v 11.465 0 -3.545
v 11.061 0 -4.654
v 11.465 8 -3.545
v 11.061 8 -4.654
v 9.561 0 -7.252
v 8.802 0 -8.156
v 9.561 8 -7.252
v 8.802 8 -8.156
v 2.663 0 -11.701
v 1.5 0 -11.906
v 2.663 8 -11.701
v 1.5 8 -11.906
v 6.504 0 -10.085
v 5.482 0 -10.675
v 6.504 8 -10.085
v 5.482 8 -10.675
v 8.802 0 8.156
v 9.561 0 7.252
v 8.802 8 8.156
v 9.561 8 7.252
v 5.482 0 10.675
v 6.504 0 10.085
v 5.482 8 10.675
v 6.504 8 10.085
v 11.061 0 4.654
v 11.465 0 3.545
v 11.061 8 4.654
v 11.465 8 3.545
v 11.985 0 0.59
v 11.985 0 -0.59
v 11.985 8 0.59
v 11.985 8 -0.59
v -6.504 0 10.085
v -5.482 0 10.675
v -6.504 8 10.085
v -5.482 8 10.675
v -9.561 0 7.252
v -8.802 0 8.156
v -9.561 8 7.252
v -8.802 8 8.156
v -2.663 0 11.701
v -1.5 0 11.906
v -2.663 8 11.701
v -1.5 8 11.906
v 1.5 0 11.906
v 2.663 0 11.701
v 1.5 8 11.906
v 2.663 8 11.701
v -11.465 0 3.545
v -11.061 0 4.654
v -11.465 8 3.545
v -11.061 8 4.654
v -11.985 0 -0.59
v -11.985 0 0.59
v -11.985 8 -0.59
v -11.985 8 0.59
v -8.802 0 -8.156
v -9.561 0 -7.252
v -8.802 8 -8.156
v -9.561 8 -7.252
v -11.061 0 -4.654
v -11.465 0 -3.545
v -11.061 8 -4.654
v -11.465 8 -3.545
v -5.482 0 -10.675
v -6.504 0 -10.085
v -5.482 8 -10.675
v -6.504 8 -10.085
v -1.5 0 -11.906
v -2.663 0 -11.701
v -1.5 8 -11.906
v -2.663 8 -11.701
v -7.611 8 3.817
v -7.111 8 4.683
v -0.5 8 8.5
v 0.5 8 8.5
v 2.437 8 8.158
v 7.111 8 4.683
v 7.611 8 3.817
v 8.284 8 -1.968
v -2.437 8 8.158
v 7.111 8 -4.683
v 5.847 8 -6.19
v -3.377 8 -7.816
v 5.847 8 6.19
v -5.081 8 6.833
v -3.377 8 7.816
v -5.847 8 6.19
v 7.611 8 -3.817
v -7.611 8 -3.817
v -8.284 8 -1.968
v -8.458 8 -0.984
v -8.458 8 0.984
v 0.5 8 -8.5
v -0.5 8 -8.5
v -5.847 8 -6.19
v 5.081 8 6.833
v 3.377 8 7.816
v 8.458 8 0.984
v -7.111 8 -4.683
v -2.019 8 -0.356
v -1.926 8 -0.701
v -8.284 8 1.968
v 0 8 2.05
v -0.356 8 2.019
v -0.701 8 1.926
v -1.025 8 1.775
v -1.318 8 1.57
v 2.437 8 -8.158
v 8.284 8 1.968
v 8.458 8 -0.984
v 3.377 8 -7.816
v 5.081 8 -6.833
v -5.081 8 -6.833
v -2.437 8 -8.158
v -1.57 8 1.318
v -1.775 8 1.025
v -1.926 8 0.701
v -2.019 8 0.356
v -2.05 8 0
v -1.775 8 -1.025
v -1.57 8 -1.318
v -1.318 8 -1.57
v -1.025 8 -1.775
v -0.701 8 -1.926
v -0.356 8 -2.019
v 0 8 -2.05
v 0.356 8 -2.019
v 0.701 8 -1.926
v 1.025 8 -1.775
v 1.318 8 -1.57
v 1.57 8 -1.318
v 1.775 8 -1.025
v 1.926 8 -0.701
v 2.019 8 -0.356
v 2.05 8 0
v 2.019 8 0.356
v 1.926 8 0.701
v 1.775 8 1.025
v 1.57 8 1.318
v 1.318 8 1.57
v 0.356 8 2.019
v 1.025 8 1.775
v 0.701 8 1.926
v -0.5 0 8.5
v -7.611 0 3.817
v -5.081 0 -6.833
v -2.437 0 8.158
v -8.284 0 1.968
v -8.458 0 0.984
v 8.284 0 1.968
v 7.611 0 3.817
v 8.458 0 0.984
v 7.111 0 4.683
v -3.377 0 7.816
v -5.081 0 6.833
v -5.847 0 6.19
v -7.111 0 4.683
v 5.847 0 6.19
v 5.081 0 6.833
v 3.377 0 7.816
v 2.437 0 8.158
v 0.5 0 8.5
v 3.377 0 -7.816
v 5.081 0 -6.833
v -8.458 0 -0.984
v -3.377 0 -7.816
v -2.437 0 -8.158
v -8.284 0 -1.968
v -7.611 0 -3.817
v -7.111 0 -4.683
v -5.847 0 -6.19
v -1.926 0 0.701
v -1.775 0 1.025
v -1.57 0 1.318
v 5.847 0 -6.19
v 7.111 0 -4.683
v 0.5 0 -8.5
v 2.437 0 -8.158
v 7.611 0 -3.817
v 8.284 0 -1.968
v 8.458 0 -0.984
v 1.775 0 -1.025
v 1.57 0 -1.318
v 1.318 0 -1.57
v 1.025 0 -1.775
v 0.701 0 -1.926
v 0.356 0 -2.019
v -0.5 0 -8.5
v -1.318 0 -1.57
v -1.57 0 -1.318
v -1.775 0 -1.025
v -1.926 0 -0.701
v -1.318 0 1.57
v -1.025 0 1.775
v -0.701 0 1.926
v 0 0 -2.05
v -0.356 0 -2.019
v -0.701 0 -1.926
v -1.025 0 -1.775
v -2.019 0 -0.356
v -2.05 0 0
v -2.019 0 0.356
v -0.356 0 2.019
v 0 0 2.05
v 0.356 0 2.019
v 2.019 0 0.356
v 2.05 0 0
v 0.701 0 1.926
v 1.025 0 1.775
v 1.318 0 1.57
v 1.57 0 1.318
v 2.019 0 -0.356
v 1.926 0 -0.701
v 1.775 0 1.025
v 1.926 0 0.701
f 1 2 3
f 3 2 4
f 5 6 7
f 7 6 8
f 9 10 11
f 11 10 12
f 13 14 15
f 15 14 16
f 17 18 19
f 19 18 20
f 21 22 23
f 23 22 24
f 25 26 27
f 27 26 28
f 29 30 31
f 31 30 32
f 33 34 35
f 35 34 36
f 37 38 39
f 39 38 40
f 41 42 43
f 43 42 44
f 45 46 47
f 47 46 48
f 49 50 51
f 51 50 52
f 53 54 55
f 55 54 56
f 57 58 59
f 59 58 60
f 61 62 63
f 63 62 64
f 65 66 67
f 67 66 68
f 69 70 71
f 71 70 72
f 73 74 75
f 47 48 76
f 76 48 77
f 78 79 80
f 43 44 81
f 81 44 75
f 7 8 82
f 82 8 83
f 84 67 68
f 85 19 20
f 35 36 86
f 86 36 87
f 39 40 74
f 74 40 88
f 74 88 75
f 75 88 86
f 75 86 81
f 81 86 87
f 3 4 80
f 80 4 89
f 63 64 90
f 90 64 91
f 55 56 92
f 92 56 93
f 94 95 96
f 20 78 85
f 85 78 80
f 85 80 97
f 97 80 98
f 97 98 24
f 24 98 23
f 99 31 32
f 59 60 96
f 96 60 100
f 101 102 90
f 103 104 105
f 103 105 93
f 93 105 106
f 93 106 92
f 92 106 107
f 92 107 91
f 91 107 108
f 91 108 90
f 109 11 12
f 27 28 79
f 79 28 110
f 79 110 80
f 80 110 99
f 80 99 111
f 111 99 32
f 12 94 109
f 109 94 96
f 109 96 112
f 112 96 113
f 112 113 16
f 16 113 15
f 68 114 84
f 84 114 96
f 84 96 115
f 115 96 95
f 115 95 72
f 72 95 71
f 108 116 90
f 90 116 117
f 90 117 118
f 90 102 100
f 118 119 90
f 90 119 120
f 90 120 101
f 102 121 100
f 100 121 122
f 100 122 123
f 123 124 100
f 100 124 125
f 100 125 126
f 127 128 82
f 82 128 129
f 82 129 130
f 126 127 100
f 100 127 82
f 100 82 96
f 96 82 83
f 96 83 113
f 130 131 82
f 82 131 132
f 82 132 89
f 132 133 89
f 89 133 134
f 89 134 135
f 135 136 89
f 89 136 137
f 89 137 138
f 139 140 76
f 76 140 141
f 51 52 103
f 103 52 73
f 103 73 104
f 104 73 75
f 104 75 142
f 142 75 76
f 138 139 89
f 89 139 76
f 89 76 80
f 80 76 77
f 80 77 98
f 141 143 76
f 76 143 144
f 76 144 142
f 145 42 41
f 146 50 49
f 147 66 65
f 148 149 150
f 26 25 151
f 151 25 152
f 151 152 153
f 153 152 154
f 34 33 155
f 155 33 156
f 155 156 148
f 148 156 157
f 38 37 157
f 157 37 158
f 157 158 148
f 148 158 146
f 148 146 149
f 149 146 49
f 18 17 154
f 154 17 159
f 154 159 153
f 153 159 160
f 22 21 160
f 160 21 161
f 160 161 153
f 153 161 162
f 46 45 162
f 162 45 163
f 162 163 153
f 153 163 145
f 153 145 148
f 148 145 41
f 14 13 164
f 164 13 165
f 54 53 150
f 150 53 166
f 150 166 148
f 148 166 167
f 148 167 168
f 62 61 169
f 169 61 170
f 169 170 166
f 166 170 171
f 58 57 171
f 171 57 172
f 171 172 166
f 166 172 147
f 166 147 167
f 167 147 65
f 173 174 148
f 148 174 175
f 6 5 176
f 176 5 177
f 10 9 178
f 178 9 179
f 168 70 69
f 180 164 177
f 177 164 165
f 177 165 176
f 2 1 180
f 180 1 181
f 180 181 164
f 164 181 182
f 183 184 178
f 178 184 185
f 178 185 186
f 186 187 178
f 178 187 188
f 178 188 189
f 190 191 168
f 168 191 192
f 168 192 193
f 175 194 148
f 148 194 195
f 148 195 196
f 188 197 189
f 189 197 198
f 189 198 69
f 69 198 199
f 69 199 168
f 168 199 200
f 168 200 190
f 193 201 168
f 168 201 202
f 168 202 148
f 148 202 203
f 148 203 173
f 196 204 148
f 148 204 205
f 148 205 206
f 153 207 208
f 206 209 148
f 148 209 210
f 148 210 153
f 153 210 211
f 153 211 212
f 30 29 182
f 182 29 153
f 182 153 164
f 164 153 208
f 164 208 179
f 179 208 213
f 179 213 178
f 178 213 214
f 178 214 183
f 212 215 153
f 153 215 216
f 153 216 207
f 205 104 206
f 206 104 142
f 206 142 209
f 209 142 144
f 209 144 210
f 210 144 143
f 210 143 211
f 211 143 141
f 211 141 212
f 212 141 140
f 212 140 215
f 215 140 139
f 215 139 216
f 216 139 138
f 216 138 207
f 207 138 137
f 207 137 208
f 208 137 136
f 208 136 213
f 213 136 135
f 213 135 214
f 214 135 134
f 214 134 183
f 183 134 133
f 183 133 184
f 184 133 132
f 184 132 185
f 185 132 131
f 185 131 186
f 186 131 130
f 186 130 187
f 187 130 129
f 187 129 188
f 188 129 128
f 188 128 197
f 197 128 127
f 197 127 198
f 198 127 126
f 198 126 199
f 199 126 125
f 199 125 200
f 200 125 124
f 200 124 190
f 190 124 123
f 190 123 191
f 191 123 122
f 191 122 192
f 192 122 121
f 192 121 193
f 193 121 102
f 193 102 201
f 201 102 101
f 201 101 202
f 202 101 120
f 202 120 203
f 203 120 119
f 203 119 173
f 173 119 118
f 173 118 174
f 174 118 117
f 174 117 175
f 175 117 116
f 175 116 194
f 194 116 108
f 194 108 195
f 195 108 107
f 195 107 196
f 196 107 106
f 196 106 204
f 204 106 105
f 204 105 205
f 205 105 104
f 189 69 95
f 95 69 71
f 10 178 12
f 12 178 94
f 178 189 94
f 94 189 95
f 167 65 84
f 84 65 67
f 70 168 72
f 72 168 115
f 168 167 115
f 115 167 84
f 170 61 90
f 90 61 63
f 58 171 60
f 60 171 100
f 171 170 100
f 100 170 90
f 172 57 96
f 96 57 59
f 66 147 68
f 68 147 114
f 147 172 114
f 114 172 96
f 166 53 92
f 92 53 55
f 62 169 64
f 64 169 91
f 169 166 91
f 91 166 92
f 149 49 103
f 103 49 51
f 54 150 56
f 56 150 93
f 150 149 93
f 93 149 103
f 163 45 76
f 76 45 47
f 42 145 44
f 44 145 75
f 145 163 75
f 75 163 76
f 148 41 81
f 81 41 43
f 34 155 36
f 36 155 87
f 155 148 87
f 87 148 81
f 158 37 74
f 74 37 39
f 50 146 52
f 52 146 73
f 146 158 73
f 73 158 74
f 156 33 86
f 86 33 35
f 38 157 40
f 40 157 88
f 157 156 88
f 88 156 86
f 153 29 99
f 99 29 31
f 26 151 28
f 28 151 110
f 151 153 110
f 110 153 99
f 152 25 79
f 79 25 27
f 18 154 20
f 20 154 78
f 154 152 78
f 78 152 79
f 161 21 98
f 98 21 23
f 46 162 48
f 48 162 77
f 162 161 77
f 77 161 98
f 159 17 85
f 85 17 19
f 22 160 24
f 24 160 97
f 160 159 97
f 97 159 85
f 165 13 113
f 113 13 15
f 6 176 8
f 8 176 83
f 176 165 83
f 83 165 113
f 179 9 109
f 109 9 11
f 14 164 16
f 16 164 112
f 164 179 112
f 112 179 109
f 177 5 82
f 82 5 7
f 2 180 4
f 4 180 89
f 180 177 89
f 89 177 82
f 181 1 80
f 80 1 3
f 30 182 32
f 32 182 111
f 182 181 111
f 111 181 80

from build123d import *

# Parameters (mm, degrees)
SKETCH1_R           = 12
BOSS_EXTRUDE1_DEPTH = 8
SKETCH2_R           = 2.05
CUT_EXTRUDE1_DEPTH  = 9
CUT_EXTRUDE2_DEPTH  = 9
CIRPATTERN1_COUNT   = 18


with BuildPart() as part:
    # Sketch1 → Boss-Extrude1 (new body)
    with BuildSketch(Plane(origin=(0, 0, 0), x_dir=(1, 0, 0), z_dir=(0, 1, 0))):
        Circle(SKETCH1_R)
    extrude(amount=BOSS_EXTRUDE1_DEPTH)

    # Sketch2 → Cut-Extrude1 (cut, through all)
    with BuildSketch(Plane(origin=(0, 8, 0), x_dir=(1, 0, 0), z_dir=(0, 1, 0))):
        Circle(SKETCH2_R)
    extrude(amount=-CUT_EXTRUDE1_DEPTH, mode=Mode.SUBTRACT)

    # Sketch3 → Cut-Extrude2 (cut, through all)
    with BuildSketch(Plane(origin=(0, 8, 0), x_dir=(1, 0, 0), z_dir=(0, 1, 0))):
        Polygon((0, 8.5), (0.5, 8.5), (1.5, 11.9058809), (1.5, 12.741082781), (-1.5, 12.741082781), (-1.5, 11.9058809), (-0.5, 8.5), align=None)
    cut_extrude2 = extrude(amount=-CUT_EXTRUDE2_DEPTH, mode=Mode.SUBTRACT)

    # CirPattern1: Cut-Extrude2 ×18 about axis
    cirpattern1_axis = Axis((0, 0, 0), (0, 1, 0))
    for i in range(1, CIRPATTERN1_COUNT):
        add(cut_extrude2.rotate(cirpattern1_axis, i * 360 / CIRPATTERN1_COUNT), mode=Mode.SUBTRACT)


solid = part.part
